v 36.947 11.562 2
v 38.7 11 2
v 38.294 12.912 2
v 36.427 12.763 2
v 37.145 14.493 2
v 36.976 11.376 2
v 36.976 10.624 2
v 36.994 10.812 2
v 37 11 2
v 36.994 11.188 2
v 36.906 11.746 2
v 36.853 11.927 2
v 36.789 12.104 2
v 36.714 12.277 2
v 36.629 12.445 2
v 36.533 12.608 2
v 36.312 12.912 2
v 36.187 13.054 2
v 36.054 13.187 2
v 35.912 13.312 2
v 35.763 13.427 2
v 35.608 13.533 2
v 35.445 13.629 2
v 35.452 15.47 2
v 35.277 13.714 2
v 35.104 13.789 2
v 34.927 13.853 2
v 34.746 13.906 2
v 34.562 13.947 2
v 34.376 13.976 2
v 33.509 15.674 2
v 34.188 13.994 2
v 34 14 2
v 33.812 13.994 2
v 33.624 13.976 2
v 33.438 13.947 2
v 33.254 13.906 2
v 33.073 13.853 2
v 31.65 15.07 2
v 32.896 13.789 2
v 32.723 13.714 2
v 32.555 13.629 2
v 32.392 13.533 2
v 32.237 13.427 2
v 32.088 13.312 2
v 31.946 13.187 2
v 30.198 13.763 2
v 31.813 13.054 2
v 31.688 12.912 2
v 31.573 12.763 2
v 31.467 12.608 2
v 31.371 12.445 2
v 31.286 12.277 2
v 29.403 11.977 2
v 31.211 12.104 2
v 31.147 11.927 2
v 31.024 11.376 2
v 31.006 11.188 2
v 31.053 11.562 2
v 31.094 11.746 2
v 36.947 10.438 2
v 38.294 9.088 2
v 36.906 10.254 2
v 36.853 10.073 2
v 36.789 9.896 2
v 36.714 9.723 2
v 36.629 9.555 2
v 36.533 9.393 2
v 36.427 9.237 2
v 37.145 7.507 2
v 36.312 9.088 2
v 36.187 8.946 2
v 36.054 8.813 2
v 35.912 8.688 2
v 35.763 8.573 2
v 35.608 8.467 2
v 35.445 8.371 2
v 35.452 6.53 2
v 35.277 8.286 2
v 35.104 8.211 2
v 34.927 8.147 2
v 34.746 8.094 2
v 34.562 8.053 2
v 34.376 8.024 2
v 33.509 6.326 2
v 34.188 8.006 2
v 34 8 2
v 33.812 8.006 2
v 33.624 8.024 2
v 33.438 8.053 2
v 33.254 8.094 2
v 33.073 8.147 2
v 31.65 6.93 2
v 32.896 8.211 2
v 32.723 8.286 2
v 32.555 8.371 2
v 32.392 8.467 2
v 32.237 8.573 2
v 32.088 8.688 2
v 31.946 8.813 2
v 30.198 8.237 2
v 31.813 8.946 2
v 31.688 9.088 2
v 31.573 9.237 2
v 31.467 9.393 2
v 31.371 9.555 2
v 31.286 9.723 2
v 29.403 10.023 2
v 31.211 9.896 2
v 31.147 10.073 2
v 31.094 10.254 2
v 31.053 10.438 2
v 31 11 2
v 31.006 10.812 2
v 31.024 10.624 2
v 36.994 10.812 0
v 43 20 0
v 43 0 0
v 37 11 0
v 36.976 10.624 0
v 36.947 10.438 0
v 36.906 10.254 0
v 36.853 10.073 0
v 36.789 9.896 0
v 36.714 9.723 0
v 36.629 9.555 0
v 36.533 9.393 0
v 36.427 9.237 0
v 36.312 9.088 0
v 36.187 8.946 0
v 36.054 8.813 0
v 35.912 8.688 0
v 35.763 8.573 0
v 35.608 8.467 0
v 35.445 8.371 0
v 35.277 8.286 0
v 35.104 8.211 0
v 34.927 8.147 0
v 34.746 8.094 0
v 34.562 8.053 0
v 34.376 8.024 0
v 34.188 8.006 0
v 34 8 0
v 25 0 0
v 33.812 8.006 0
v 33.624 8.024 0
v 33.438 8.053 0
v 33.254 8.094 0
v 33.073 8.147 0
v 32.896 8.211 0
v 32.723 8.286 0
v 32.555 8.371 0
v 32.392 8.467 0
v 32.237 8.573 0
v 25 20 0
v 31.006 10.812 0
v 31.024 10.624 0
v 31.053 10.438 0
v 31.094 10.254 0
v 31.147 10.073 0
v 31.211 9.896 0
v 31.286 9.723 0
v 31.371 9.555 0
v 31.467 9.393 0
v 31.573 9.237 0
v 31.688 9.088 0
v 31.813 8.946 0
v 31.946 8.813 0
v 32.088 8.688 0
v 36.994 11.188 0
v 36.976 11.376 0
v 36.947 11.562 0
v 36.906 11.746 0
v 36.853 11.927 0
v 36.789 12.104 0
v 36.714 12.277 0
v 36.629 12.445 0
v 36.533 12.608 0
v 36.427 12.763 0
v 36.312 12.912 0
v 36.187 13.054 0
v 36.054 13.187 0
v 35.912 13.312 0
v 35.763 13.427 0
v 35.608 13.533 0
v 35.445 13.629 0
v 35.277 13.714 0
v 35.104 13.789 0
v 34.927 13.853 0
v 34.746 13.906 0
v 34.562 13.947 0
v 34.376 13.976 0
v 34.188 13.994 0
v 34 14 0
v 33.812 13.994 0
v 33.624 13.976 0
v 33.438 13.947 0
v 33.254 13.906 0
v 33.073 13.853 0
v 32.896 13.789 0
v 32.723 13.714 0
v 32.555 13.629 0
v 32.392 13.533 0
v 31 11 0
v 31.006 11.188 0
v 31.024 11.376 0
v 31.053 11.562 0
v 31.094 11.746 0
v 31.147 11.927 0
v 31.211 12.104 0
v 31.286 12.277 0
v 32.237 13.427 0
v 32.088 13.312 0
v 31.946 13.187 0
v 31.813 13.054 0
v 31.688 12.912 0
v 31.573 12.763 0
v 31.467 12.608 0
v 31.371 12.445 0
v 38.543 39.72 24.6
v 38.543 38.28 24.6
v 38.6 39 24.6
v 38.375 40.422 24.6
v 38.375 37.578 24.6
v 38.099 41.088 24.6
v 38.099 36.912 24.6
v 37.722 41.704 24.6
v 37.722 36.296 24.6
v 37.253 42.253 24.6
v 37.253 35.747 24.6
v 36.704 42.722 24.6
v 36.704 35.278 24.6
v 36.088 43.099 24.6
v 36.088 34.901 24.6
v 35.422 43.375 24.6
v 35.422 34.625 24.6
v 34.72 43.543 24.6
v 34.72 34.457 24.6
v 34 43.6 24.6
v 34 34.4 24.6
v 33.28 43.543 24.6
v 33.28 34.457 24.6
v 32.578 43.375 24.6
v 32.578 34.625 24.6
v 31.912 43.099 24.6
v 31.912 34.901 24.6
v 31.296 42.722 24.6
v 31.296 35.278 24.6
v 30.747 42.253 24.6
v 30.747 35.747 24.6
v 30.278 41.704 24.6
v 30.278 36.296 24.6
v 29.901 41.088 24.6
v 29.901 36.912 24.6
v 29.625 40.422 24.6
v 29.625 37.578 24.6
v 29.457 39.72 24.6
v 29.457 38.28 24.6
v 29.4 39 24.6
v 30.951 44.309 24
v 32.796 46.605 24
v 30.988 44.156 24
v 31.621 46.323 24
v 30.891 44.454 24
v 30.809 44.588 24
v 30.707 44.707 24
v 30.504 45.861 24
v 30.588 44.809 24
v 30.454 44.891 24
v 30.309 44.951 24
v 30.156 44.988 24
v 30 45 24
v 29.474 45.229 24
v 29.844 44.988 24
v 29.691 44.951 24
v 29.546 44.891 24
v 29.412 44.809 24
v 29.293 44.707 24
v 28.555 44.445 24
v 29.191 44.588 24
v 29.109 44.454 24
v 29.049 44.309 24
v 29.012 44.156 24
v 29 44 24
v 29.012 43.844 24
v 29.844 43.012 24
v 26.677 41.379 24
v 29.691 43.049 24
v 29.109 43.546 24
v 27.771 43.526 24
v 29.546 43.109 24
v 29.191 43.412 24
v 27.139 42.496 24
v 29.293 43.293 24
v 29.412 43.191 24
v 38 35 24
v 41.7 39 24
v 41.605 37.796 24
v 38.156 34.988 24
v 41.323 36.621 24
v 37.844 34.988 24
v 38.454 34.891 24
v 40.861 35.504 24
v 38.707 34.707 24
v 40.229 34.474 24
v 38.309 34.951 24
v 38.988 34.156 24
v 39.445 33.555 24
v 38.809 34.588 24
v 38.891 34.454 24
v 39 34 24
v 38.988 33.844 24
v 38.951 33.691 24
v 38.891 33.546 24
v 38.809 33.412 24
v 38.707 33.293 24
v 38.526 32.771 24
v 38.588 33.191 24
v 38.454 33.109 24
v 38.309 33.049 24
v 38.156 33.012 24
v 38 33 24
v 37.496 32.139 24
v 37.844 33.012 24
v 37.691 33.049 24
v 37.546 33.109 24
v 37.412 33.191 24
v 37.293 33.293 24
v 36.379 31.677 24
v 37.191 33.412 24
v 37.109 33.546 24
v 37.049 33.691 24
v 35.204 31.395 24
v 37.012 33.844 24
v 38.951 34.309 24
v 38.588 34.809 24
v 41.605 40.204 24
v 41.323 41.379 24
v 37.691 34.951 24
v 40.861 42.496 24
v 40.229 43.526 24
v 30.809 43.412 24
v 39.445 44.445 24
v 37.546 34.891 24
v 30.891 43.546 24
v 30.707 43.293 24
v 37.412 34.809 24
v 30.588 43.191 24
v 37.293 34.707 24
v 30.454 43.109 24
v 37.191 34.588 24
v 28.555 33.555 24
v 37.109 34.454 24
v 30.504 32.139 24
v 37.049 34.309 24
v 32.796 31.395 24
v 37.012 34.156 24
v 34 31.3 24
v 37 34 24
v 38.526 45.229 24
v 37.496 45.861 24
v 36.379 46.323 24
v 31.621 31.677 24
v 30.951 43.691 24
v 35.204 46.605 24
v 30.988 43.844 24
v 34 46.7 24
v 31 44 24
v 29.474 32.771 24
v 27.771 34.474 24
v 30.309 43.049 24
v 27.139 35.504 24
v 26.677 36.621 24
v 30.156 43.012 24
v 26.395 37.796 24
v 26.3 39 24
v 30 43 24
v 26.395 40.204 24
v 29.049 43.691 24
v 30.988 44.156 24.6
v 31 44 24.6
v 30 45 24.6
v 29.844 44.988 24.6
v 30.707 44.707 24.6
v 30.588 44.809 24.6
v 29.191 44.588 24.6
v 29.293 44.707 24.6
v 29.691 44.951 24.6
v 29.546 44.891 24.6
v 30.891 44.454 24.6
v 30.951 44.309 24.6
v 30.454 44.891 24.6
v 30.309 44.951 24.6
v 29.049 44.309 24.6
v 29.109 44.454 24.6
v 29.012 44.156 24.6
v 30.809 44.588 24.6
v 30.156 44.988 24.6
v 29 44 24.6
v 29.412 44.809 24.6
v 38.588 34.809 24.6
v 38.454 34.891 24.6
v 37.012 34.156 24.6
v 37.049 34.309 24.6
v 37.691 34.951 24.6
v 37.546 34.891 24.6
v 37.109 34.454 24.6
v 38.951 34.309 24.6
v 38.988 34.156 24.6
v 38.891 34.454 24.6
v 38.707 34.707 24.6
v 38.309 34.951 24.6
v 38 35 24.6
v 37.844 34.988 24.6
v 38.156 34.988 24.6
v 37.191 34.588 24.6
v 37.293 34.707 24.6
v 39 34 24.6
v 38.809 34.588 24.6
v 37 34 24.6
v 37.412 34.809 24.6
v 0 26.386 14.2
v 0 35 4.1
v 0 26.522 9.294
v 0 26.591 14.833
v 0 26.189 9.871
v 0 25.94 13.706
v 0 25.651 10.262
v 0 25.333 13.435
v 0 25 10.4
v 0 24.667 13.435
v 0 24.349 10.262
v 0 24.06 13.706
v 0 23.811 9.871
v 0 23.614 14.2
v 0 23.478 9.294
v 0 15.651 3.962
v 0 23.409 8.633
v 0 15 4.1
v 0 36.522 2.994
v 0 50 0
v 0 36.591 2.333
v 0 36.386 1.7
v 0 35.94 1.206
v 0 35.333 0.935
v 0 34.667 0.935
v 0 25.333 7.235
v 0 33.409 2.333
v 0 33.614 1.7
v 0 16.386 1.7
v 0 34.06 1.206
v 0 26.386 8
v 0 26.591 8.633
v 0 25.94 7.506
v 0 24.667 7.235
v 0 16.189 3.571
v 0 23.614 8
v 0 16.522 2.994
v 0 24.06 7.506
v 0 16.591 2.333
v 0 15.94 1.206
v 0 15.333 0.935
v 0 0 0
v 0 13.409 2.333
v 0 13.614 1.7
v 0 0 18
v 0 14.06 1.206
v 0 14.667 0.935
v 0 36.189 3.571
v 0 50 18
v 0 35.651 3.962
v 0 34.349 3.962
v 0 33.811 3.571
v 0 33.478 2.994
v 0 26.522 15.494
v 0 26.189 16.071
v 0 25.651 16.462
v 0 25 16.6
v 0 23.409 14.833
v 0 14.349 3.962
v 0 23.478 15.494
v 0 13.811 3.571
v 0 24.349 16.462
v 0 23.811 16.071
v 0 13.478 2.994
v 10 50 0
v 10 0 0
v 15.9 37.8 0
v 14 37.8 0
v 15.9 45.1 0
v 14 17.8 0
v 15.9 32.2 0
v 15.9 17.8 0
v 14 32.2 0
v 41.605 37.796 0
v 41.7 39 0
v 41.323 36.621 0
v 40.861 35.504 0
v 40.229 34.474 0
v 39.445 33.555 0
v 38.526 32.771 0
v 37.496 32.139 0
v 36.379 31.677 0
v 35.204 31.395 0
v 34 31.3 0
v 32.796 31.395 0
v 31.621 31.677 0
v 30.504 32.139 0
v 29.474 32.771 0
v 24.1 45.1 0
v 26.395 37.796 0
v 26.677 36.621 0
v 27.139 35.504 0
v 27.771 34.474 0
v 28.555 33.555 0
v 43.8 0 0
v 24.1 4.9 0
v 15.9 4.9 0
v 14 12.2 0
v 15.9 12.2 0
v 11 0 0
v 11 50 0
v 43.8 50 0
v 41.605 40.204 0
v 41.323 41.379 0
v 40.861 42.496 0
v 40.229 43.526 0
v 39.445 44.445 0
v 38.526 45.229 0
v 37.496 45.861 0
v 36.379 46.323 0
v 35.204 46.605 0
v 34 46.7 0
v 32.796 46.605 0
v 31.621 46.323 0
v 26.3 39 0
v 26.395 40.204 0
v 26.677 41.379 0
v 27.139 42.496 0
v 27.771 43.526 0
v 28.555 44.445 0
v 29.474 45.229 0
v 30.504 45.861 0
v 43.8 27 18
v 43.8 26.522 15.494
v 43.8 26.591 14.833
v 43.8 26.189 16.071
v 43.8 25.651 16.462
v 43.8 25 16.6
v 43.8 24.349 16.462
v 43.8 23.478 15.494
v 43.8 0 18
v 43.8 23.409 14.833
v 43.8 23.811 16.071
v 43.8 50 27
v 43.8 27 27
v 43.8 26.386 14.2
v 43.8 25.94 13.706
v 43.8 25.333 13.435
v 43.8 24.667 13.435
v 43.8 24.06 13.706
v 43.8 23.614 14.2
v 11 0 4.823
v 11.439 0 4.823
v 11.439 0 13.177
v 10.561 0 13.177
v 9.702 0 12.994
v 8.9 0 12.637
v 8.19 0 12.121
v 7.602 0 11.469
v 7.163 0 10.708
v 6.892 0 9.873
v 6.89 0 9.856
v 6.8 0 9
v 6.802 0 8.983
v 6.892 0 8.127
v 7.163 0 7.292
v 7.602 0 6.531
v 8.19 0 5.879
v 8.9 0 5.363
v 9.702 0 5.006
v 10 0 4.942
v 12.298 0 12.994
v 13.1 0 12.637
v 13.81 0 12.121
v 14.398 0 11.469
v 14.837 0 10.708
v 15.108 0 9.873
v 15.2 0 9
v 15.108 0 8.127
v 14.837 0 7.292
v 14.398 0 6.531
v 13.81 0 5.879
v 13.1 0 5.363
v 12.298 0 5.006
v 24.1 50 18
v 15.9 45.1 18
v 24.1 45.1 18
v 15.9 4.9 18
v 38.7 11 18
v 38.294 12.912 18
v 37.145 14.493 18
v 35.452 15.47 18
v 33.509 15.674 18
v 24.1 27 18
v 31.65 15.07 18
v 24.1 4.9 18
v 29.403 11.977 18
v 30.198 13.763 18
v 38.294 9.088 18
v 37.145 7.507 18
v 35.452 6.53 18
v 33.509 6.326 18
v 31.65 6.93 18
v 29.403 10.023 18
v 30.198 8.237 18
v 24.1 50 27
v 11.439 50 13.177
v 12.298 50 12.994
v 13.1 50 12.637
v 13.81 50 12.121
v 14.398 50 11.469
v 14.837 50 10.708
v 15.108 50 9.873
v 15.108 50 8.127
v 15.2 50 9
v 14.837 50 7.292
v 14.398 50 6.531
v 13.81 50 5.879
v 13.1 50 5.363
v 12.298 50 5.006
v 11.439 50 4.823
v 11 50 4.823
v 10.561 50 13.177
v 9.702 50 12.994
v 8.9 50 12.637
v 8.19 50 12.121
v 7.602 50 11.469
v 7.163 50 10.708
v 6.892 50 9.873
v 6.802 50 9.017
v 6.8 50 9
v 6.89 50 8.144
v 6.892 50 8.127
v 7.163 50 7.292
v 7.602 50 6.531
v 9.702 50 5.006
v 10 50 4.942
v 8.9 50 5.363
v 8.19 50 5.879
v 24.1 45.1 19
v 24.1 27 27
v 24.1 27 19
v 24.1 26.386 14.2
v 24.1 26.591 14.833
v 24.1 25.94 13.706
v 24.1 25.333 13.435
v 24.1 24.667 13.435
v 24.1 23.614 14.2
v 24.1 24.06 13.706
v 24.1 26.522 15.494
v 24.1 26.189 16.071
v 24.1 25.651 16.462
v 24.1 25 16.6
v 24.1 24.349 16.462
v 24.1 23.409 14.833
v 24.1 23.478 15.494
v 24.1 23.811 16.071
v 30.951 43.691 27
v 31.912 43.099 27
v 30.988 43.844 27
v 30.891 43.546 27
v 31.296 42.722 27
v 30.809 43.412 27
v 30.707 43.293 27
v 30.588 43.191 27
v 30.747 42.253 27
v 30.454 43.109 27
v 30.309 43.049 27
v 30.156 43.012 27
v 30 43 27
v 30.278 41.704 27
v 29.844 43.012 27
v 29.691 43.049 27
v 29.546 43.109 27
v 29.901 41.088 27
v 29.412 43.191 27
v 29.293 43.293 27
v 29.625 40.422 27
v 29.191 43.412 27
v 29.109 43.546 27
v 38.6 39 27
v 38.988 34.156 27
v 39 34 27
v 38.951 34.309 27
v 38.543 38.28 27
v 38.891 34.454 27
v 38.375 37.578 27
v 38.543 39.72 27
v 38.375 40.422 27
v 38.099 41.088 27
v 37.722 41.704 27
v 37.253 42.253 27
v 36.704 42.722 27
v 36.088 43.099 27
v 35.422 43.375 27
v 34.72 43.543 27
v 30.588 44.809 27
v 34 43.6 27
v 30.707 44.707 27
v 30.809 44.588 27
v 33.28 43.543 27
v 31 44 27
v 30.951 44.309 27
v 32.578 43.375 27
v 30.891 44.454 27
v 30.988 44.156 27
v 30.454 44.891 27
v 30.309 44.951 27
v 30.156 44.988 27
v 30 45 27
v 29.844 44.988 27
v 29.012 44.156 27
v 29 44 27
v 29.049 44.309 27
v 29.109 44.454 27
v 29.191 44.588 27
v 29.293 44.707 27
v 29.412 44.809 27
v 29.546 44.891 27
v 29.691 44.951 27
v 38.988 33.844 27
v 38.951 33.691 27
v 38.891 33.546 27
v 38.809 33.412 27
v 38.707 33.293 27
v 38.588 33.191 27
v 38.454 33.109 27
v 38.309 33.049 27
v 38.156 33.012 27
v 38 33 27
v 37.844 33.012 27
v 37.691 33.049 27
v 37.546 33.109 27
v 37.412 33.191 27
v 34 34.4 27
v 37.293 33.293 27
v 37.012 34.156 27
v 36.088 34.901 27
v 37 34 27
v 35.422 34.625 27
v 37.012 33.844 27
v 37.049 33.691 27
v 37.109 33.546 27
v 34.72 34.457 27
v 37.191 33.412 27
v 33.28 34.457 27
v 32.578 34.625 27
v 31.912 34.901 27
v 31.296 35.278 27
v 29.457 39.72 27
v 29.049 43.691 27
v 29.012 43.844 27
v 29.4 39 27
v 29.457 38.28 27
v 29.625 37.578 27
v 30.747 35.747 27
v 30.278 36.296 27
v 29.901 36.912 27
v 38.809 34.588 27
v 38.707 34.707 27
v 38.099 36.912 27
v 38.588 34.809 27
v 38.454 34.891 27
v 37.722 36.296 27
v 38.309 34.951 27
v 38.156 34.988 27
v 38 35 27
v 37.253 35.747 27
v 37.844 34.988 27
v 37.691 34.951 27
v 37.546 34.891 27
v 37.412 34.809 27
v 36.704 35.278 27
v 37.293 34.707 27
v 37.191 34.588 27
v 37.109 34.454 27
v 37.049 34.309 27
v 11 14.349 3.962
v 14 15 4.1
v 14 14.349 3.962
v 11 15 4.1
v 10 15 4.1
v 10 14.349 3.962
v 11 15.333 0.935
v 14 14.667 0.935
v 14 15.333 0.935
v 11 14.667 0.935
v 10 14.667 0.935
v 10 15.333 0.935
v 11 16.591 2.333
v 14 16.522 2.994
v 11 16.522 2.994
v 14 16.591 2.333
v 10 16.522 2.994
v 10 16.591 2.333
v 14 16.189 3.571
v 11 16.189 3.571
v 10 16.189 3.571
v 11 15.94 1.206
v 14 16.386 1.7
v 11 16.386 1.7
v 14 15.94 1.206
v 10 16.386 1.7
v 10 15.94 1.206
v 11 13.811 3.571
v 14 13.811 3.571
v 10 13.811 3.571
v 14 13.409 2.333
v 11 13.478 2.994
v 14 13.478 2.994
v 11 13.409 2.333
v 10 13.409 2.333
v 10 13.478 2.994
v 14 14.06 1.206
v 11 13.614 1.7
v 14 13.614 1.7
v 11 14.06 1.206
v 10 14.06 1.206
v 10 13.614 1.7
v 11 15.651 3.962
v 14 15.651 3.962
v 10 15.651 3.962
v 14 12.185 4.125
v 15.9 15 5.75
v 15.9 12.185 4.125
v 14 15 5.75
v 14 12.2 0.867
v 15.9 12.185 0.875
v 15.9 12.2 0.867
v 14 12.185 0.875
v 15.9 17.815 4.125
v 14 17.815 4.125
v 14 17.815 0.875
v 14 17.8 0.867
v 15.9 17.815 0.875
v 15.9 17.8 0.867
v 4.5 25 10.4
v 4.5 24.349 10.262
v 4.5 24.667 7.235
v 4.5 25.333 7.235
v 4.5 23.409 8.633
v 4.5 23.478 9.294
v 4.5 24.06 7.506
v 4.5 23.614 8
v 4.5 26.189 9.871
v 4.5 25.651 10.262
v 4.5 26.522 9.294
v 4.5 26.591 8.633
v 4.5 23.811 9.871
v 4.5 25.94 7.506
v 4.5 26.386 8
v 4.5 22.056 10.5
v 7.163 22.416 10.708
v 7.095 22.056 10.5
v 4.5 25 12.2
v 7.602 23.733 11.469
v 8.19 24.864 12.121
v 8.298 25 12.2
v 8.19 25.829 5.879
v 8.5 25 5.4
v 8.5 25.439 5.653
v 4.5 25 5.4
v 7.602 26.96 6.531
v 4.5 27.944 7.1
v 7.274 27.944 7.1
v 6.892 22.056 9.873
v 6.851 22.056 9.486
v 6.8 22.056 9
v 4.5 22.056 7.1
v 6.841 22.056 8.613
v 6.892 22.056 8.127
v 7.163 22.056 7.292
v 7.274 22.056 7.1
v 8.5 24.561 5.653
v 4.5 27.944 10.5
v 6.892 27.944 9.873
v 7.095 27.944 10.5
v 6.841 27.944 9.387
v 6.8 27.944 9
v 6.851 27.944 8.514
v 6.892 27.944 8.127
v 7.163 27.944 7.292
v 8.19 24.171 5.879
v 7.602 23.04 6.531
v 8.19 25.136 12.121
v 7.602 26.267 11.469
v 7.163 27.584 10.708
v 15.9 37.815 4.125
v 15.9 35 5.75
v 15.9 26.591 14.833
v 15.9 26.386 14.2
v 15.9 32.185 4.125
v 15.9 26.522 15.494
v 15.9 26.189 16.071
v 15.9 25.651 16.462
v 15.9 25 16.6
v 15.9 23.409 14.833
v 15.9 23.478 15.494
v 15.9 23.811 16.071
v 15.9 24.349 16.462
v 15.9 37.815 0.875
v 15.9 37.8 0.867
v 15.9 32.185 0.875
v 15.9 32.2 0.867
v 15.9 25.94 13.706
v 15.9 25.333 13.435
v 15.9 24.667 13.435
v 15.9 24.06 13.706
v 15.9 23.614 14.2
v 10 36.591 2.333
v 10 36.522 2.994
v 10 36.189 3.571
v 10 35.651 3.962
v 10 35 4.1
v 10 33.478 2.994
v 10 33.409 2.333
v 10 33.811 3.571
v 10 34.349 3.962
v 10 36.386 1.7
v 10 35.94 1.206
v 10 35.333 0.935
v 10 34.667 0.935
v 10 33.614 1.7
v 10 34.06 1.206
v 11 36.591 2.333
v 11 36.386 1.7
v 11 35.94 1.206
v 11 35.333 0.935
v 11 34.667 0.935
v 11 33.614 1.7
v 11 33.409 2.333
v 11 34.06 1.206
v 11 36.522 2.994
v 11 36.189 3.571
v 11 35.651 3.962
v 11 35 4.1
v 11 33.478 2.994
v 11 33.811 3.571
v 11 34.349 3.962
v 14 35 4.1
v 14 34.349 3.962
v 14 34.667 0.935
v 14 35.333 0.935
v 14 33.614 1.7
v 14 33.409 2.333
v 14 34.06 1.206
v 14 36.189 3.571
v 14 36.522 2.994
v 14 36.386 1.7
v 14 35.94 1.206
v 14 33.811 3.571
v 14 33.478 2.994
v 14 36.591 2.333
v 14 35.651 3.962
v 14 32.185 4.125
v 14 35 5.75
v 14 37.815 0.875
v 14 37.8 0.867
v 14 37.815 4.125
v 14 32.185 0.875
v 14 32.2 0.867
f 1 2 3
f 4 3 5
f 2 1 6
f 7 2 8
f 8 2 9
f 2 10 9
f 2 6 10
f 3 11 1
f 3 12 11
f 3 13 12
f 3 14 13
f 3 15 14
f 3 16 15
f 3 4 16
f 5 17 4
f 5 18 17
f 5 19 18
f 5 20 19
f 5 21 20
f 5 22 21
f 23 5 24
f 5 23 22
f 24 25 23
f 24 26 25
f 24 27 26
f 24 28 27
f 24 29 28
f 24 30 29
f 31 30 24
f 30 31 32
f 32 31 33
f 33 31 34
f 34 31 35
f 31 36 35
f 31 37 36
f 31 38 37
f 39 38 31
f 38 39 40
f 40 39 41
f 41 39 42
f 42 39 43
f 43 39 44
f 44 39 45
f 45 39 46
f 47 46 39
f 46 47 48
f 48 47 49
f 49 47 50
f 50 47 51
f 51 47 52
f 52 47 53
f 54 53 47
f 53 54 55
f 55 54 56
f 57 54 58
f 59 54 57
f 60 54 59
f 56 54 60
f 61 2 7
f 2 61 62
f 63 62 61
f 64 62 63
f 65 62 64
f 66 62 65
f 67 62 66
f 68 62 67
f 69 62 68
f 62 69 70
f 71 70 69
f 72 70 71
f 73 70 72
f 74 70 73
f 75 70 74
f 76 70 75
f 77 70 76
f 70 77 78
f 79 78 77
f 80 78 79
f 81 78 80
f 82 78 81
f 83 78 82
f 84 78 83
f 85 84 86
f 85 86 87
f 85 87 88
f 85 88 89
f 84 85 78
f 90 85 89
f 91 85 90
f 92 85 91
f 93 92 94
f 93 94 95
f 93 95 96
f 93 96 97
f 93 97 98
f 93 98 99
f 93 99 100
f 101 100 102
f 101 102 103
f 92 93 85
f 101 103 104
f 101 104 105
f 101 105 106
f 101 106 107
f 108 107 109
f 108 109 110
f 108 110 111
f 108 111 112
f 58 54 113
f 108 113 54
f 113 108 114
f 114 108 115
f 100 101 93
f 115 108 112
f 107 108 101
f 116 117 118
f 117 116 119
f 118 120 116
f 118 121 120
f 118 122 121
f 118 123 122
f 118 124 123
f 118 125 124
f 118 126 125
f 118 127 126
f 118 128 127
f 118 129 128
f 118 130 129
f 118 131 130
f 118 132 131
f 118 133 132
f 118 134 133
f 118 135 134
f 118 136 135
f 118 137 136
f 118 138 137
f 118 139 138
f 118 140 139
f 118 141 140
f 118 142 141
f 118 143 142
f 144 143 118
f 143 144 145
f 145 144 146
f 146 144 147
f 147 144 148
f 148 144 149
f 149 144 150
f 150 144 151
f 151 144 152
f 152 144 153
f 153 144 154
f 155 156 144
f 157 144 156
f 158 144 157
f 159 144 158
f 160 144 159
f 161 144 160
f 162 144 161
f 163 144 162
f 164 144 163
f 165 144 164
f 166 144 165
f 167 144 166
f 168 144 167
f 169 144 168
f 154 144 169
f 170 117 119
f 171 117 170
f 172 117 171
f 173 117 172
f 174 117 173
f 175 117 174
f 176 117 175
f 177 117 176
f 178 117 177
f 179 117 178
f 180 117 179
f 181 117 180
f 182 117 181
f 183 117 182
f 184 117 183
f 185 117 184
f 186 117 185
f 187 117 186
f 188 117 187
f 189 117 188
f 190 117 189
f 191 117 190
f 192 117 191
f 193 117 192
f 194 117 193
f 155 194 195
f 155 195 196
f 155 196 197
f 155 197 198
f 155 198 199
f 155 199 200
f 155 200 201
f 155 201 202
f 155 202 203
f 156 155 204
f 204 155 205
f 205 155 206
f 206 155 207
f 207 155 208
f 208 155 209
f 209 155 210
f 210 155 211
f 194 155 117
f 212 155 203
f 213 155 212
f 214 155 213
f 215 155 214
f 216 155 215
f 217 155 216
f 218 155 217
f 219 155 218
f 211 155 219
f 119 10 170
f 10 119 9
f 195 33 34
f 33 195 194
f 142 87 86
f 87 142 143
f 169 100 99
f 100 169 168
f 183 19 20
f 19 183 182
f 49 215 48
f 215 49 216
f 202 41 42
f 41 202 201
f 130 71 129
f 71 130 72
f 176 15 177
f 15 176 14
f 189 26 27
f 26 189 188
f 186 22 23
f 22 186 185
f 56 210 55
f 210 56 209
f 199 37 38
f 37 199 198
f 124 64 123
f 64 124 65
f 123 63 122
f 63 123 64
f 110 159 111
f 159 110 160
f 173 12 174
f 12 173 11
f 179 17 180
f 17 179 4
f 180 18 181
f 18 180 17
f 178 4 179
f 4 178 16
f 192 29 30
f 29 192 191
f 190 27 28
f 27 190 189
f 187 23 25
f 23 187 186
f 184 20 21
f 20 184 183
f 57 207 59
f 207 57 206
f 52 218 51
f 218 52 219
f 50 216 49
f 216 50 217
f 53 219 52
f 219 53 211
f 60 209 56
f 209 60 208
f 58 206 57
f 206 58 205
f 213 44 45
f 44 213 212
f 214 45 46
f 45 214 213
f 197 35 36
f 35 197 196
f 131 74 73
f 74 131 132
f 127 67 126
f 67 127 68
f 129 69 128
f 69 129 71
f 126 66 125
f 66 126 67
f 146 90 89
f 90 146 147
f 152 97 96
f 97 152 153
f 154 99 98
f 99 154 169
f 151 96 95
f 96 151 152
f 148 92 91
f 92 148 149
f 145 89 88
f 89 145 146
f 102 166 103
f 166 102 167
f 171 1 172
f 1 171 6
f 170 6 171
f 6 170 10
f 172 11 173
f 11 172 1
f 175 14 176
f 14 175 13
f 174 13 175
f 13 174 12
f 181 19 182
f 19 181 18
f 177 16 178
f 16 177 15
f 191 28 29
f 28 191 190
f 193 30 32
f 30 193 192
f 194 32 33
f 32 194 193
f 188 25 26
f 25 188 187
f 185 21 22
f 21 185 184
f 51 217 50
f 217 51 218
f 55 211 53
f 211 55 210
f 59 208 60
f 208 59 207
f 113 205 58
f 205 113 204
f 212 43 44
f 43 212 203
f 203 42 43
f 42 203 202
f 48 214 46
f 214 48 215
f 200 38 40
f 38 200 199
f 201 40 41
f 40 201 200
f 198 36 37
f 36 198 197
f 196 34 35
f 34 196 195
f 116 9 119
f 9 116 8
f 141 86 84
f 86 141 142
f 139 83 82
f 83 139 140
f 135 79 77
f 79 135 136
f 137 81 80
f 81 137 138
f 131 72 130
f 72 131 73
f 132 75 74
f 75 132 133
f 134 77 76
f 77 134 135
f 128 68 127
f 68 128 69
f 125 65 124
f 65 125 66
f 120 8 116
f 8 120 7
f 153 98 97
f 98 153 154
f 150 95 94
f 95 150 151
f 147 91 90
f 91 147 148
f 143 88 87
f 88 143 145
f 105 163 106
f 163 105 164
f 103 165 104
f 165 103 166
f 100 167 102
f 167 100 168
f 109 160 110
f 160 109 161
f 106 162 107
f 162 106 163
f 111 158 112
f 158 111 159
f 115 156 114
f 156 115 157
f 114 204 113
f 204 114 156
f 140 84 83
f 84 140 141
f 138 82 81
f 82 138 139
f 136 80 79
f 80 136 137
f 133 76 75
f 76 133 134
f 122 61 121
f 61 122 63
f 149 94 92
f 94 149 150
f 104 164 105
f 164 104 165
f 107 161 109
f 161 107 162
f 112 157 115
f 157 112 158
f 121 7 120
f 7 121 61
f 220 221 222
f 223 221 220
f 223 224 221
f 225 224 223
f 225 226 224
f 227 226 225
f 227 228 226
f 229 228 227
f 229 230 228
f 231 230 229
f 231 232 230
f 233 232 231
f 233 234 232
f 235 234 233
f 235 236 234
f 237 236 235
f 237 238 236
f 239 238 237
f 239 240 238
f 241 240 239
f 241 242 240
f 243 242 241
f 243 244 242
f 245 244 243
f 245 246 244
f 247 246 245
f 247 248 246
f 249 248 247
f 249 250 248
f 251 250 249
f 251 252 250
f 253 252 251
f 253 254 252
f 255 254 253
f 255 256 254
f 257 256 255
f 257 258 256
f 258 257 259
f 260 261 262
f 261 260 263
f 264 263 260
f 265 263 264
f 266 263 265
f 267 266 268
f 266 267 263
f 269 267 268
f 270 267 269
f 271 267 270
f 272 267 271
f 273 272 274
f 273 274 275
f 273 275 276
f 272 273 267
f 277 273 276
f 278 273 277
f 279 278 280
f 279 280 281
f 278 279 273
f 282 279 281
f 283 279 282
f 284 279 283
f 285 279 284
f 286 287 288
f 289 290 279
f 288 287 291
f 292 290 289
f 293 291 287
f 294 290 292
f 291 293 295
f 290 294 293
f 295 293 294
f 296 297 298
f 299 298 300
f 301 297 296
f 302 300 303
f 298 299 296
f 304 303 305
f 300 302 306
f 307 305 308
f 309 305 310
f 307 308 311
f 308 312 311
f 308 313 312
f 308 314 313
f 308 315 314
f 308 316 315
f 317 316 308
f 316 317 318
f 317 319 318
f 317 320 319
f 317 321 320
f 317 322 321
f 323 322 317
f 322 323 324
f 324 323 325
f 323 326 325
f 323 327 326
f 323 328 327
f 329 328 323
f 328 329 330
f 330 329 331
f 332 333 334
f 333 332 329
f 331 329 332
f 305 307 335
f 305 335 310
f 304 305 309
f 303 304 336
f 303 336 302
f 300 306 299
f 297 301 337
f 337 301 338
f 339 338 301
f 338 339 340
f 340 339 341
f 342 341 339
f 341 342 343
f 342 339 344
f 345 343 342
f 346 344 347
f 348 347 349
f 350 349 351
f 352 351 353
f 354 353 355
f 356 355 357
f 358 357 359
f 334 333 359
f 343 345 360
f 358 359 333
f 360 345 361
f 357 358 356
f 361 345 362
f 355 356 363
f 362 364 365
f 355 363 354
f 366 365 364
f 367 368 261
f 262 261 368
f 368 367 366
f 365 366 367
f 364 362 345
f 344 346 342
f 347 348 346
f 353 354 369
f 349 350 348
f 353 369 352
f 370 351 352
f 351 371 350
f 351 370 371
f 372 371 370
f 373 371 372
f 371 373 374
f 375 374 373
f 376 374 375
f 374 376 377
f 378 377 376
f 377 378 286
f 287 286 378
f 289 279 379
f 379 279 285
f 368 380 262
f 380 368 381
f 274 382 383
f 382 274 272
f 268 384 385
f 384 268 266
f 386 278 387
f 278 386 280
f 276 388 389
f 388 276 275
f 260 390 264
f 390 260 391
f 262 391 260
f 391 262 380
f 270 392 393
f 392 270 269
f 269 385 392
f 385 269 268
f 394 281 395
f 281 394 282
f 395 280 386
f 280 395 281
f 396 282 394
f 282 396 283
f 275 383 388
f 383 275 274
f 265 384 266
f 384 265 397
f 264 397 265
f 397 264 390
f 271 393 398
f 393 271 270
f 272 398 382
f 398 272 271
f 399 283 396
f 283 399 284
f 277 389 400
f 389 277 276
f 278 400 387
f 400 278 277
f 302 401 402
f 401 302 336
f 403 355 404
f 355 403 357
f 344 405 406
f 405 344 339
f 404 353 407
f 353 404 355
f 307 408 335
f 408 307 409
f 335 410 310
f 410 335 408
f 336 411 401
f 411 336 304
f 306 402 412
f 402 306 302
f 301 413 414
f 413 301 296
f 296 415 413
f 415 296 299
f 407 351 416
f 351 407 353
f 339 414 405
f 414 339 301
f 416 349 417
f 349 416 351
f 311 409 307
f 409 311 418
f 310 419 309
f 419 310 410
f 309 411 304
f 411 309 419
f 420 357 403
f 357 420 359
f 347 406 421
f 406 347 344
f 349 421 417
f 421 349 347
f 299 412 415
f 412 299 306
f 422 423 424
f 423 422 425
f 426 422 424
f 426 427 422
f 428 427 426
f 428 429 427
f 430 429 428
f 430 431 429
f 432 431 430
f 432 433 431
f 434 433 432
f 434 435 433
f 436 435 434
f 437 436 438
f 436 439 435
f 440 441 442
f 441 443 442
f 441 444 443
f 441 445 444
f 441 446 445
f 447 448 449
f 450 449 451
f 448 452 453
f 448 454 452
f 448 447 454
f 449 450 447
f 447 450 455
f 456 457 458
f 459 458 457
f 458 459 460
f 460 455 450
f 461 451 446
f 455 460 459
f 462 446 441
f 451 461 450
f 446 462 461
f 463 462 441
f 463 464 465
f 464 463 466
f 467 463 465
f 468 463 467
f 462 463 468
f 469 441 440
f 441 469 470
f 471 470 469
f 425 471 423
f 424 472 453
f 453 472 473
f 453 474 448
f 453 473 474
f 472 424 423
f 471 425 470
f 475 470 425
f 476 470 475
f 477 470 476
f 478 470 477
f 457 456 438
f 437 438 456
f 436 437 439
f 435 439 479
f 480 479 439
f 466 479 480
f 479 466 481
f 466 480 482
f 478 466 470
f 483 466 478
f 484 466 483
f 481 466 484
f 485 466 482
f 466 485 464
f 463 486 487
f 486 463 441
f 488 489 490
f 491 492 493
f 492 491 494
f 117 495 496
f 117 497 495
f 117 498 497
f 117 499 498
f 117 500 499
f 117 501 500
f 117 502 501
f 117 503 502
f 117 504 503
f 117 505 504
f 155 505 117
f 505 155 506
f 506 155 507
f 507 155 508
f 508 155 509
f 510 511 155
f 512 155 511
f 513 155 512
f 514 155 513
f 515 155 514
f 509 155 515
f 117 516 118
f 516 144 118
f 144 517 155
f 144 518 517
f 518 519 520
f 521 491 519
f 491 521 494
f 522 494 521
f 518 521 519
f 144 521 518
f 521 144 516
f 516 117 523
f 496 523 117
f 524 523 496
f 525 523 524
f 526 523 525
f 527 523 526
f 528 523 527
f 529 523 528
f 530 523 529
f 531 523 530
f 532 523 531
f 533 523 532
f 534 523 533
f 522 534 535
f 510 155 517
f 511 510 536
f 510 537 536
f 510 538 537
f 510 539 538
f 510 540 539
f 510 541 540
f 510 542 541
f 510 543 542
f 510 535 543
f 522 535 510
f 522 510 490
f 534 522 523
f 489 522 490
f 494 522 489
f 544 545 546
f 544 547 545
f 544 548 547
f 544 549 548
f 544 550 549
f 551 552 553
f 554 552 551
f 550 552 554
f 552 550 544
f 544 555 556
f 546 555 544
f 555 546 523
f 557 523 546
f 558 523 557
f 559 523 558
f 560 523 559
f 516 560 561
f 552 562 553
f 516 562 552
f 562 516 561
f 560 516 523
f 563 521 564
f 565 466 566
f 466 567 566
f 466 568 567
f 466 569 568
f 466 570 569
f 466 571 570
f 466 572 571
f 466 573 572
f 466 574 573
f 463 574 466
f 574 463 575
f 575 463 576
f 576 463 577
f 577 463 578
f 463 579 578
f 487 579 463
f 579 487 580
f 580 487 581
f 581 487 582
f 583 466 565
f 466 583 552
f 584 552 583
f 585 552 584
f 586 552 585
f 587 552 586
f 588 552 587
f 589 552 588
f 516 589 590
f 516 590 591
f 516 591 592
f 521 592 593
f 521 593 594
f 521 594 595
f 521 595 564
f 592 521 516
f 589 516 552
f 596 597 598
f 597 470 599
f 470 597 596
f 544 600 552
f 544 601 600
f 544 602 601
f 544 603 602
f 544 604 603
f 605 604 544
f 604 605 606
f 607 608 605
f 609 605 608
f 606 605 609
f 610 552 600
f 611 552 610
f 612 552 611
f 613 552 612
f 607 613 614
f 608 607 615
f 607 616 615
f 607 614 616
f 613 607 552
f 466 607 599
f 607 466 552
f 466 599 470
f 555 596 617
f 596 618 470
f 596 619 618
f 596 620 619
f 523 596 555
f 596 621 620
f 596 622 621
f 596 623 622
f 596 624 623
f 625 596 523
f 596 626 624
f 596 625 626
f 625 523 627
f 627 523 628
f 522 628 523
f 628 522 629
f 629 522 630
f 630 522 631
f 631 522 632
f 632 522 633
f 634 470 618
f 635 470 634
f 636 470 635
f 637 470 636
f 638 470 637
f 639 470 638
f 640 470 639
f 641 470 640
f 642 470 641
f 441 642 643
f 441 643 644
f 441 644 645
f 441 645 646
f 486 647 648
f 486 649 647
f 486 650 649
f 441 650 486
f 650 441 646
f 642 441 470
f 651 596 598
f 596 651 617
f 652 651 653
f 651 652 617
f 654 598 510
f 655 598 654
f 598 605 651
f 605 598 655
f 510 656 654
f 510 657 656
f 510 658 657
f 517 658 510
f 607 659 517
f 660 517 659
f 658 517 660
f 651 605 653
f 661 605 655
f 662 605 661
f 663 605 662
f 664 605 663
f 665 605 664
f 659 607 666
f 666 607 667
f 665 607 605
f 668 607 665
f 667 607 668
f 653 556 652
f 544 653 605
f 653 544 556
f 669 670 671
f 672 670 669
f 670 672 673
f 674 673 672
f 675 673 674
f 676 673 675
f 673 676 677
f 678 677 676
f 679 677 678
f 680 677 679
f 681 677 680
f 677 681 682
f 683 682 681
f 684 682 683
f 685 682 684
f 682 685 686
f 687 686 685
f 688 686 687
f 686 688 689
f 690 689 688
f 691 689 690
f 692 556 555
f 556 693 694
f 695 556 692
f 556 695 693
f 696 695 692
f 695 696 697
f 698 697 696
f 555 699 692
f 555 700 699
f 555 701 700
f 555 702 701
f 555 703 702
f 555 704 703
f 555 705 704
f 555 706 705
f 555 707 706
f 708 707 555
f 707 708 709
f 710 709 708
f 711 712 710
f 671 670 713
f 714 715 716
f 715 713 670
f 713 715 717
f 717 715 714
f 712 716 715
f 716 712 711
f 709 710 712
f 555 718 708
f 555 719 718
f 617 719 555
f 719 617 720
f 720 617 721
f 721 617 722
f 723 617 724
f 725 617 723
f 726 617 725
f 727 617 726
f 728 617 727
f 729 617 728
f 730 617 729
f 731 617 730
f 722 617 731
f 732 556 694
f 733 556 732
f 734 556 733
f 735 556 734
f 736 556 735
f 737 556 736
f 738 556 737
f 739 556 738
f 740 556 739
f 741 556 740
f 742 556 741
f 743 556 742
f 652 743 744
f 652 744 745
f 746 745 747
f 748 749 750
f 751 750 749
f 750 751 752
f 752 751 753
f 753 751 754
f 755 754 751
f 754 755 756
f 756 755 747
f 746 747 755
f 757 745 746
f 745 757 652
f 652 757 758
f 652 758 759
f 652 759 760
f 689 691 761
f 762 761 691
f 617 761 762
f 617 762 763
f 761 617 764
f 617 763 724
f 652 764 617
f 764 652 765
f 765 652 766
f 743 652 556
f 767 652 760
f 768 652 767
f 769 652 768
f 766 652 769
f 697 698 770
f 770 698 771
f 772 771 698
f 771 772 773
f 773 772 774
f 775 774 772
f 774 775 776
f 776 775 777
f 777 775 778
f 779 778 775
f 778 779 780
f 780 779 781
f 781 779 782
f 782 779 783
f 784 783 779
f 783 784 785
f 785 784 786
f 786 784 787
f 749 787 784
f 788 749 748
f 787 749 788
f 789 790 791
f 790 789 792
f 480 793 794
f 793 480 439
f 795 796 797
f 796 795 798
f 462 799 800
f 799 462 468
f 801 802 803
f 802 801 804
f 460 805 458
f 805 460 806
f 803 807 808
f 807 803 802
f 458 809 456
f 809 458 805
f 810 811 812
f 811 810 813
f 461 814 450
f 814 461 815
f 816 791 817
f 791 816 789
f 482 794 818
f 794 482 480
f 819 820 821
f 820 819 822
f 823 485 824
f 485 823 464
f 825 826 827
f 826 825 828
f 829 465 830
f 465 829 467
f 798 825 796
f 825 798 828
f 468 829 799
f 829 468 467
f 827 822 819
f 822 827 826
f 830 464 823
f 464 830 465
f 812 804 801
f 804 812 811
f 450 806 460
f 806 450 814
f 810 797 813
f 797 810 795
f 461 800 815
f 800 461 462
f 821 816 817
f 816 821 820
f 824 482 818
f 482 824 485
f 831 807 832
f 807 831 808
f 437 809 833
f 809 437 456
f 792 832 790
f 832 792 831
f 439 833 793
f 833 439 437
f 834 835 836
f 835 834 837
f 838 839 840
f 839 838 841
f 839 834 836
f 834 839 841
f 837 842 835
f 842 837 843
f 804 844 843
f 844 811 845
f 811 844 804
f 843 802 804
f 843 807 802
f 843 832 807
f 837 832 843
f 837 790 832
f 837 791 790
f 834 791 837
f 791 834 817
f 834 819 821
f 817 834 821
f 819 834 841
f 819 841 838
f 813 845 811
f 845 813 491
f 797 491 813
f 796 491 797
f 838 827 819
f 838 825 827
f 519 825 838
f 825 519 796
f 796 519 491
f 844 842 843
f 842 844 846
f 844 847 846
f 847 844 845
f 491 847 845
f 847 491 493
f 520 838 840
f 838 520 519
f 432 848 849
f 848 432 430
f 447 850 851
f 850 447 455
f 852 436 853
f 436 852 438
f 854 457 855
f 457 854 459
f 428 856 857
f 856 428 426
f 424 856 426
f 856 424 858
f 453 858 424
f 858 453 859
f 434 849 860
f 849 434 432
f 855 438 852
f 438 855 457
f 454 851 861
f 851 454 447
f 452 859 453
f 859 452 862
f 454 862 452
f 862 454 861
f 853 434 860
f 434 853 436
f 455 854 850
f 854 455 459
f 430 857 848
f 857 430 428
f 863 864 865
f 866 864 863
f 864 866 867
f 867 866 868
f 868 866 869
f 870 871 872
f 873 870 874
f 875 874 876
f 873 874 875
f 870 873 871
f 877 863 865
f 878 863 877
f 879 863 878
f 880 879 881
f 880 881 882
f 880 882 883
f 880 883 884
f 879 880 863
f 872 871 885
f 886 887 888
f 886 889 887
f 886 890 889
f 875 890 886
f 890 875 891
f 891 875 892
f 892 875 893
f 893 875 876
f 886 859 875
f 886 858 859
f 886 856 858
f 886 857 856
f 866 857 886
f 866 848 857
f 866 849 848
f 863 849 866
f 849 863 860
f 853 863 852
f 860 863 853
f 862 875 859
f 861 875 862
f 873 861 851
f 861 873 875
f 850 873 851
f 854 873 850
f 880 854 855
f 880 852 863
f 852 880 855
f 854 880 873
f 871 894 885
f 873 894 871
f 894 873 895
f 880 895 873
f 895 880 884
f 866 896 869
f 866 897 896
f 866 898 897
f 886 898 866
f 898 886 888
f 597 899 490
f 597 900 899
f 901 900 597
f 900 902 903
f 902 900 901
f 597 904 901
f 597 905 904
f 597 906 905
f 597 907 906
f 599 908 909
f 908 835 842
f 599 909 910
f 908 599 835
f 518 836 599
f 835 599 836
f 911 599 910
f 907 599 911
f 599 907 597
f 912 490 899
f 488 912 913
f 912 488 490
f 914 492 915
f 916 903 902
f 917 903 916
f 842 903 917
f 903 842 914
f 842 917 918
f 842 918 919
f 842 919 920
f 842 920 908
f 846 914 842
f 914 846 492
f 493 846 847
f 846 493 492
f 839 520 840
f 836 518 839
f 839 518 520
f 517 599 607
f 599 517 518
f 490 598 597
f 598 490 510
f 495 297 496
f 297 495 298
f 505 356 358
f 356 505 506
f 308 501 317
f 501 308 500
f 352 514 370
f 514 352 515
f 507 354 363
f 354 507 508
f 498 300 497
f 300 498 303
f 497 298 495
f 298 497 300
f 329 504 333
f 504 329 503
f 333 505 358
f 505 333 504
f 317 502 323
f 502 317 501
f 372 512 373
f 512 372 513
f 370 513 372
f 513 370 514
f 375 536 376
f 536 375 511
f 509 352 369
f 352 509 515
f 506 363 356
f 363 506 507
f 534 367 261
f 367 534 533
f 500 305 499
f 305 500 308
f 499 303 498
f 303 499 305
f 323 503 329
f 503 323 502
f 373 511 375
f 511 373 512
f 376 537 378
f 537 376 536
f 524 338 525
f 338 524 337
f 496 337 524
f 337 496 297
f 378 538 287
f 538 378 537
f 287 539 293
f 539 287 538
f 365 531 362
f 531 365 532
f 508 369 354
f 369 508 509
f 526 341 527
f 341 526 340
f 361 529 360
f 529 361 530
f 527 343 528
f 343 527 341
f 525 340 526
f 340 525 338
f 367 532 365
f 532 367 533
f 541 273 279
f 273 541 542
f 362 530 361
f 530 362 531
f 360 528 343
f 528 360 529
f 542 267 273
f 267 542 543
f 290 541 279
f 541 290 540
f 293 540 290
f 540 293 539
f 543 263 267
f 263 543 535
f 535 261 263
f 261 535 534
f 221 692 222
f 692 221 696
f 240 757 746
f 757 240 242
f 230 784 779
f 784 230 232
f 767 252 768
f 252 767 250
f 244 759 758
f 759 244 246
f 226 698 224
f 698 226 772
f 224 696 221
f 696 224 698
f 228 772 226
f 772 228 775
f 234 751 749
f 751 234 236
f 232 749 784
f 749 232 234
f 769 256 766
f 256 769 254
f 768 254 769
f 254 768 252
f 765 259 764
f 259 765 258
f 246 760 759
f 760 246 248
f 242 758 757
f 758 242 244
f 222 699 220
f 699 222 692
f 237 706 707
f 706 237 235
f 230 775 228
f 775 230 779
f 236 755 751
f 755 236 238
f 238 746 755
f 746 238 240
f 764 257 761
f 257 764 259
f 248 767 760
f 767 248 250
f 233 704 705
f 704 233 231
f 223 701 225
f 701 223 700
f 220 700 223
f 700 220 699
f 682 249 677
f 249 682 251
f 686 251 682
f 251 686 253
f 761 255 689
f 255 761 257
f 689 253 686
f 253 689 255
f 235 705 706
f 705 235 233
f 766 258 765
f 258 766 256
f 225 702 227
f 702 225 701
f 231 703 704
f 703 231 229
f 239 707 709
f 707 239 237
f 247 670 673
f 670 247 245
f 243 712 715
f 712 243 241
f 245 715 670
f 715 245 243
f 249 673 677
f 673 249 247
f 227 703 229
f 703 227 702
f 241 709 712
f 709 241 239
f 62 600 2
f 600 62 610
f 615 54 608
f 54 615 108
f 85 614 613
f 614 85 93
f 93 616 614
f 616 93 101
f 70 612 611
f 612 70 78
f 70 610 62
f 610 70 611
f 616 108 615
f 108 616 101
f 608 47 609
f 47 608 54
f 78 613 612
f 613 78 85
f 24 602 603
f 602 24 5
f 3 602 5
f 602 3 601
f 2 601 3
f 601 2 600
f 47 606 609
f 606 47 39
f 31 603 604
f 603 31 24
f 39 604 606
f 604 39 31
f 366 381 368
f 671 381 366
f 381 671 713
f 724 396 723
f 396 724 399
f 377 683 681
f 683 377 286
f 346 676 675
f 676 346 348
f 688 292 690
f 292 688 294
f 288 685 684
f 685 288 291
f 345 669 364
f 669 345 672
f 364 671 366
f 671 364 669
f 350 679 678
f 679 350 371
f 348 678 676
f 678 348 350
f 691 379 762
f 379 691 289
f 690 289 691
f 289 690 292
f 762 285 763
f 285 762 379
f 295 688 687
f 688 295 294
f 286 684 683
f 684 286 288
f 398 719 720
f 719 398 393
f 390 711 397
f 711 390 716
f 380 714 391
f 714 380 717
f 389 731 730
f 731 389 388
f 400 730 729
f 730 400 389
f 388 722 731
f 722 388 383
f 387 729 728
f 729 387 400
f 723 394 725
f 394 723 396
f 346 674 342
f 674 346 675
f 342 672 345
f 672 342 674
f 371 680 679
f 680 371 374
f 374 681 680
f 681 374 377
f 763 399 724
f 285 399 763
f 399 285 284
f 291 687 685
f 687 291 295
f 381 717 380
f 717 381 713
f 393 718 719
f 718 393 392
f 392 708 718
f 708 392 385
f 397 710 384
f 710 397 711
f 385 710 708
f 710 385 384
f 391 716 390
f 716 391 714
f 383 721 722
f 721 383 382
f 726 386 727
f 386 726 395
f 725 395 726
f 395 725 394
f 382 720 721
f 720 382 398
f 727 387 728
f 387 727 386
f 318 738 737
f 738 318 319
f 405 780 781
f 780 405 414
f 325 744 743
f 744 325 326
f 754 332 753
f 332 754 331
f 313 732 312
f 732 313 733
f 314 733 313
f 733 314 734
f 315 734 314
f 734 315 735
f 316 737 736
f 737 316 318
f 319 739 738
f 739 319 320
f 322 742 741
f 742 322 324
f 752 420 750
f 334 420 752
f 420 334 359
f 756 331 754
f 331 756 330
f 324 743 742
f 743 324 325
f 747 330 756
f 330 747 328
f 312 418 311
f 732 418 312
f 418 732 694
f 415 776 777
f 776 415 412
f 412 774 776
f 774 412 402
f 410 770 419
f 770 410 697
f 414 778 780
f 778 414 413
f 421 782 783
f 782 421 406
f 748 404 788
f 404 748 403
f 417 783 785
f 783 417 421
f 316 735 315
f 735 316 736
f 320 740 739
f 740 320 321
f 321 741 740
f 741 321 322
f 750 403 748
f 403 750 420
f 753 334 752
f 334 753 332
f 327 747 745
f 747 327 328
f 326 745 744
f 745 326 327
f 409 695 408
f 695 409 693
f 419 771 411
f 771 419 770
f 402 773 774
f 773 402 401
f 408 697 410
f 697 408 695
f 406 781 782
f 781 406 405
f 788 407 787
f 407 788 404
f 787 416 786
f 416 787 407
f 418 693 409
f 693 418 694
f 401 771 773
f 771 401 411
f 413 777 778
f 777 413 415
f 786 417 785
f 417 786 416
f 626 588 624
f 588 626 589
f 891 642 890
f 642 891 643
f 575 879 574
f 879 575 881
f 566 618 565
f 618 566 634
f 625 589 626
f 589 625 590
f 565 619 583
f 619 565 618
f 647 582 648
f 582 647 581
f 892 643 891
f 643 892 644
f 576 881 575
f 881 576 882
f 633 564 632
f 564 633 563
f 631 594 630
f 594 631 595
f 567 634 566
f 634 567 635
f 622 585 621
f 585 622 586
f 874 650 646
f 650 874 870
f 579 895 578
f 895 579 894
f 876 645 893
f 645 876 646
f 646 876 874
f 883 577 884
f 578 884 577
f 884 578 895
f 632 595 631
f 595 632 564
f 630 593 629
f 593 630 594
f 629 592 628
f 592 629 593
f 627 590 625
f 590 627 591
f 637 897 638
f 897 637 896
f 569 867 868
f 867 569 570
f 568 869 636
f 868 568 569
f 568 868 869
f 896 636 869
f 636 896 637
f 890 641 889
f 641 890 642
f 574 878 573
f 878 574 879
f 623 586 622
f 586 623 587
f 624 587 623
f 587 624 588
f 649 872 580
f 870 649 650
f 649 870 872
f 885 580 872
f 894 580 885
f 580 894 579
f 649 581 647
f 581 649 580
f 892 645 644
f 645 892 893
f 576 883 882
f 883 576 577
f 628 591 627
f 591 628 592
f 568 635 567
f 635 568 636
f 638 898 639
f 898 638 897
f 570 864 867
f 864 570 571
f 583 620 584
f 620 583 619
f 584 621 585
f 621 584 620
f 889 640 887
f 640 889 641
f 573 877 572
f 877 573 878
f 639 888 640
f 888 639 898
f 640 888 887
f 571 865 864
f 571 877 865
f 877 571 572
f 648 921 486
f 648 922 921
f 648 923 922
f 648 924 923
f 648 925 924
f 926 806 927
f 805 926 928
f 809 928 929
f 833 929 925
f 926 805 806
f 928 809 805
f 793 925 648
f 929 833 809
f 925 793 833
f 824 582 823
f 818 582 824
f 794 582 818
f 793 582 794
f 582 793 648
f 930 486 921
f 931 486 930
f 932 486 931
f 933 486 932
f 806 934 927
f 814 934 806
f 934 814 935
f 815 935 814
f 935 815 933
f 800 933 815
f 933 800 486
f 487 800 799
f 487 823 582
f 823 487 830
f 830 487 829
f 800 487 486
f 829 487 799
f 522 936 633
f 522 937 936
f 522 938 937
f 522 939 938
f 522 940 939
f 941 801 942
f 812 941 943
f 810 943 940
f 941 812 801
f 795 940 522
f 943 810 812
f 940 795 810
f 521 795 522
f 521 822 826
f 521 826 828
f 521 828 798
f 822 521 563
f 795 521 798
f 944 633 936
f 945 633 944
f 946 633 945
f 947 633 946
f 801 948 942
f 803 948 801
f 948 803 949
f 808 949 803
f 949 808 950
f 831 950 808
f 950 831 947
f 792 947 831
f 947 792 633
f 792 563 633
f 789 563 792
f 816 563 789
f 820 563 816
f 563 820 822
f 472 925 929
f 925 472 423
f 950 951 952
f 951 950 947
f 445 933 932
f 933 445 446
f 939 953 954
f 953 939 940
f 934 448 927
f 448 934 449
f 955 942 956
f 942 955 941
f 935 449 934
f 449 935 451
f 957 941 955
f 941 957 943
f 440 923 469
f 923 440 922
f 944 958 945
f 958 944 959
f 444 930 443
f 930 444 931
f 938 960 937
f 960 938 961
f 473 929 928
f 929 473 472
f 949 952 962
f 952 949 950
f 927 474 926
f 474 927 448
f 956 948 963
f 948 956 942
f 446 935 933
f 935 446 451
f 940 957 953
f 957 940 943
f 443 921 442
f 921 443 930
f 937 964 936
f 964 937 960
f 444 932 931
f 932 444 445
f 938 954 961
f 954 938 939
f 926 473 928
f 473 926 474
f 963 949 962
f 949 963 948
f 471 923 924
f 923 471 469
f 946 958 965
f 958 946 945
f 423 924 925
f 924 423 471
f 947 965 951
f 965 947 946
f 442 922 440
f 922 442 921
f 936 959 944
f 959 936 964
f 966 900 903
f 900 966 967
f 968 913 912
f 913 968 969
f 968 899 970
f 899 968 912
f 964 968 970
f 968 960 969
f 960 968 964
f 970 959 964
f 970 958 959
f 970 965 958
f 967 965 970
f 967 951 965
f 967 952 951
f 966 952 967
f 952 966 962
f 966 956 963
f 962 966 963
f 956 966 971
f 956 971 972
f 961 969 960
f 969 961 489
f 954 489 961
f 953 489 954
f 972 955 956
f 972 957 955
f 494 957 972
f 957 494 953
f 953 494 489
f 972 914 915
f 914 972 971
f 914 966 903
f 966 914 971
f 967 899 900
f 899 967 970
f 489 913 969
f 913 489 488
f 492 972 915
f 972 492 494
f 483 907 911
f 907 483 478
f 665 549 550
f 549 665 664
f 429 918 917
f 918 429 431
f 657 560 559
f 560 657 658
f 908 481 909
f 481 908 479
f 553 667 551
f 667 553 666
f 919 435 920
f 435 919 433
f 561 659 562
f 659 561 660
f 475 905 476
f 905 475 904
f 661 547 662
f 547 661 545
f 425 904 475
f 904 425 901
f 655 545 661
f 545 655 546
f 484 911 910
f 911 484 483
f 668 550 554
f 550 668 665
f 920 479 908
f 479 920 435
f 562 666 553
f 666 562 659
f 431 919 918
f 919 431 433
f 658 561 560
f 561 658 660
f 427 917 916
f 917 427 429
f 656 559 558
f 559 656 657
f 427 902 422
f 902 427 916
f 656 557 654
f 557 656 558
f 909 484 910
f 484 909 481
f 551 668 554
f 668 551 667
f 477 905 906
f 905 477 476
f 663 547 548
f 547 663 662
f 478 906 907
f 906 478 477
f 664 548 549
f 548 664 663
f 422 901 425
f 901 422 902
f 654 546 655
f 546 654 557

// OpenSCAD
/**
 * Критические размеры
 */
// Допуск на радиус подшипника (расстояние между стенками подшипника и детали)
delta1=0.2;
// Наружный диаметр линейного подшипника LM8UU
d1=15;
// Допуск на радиус направляющей (расстояние между стенками направляющей и детали)
delta2=0.2;
// Наружный диаметр направляющей
d2=8;

module carriage_part03() {
	module block() {
		M3 = 3.2/2;
		difference() {
			union() {
				translate([-2,0,0]) cube([43.8,50,18]);
				translate([-2,10,0]) cube([2,30,18]);
				// шапка над подшипником
				translate ([22.1,0,-9]) cube([19.7,23,9]);
			}

//	translate([-10,-10,-40])cube([100,100,50]);
//	translate([-10,-10,13])cube([100,100,50]);
//	translate([-78,-10,-20])cube([100,100,50]);

// вырез под оргстекло
//	translate([13.9,5,-1])cube([8.2,40,23]); - не входит
	translate([13.9,4.9,-1])cube([8.2,40.2,23]);

// линейный подшипник 24 * 15 * 8
//translate([32,11,-4]) cylinder(26,r=15.4/2,$fn=40); // для инверсии входа подшипника
	translate([32,11,-6]) cylinder(26,r=d1/2+delta1,$fn=40);

	translate([32,11,-10]) cylinder(20,r=9.2/2,$fn=40);

	// гайка  M5
//#	translate([32,39,-1])cylinder(6.4,r=4.7,$fn=40);
//#	translate([32,39,10])cylinder(9,r=4.7,$fn=40);
//#	translate([35,32.4,-1])cube([6,13.2,20]);
	//translate ([32,39,-1]) cylinder(20,r=9.4/2,$fn=6); // плотно сидит
	translate ([32,39,-1]) cylinder(20,r=9.4/2);
//	translate ([32,39,-1]) cylinder(20,r=10.2/2,$fn=6); // свободно сидит

	// Отверстия для извлечения подшипников
	translate([28,6,-10]) cylinder(20,r=1,$fn=40);
	translate([36,16,-10]) cylinder(20,r=1,$fn=40);

	// направляющая - слабо держит
//	translate([9,-1,9])rotate([-90,0,0])cylinder(52,r=8.4/2,$fn=30);
	translate([9,-1,9])rotate([-90,0,0])cylinder(52,r=d2/2+delta2,$fn=30);
	// вырезы у направляющей
	translate([8,-1,8])cube([1,52,11]);
	// отверстие 1
	translate([-5,15,15.5])rotate([0,90,0])cylinder(20,r=M3,$fn=15);
	translate([12,15,15.5])rotate([0,90,0])cylinder(5,r=6.5/2,$fn=6);
	translate([12,12.2,17])cube([3,5.6,2]);

	// отверстие 2
	translate([0,35,0]) {
		translate([-5,0,15.5])rotate([0,90,0])cylinder(20,r=M3,$fn=15);
        translate([12,0,15.5])rotate([0,90,0])cylinder(5,r=6.5/2,$fn=6);
        translate([12,-15+12.2,17])cube([3,5.6,2]);
	}
	// отверстие 3 в прижиме
	translate([-9.5,10,-6.6]) {
		translate([-5,15,15.8])rotate([0,90,0])cylinder(20,r=M3,$fn=15);
	translate([12,15,15.8])rotate([0,90,0])cylinder(4,r=6.8/2,$fn=6);
	}
	// сквозное отверстие в детали
		translate([-14.5,25,3])rotate([0,90,0])cylinder(60,r=M3,$fn=15);

}
}

// шапка над гайкой, отверстие в ней
difference() {
	translate ([25,0,0]) cube([18,20,2]);
	translate ([34,11,-5]) cylinder(10,r=6/2,$fn=100);
}

difference() {
// мост над подшипником
	translate ([25,30,24]) cube([18,20,0.6]) ;

// Отверстия для извлечения подшипников
	translate([30,44,10]) cylinder(20,r=1,$fn=40);
	translate([38,34,10])  cylinder(20,r=1,$fn=40);

//	translate ([44,7,24]) rotate([0,0,0]) 	holes();
}

// мост над трубкой - не нужен при верной ориентации прохода втулки
//	translate ([24,30.5,13.5]) cube([16,16,0.5]);
    translate([2,50,18])rotate([180,0,0])block();
}

carriage_part03();
